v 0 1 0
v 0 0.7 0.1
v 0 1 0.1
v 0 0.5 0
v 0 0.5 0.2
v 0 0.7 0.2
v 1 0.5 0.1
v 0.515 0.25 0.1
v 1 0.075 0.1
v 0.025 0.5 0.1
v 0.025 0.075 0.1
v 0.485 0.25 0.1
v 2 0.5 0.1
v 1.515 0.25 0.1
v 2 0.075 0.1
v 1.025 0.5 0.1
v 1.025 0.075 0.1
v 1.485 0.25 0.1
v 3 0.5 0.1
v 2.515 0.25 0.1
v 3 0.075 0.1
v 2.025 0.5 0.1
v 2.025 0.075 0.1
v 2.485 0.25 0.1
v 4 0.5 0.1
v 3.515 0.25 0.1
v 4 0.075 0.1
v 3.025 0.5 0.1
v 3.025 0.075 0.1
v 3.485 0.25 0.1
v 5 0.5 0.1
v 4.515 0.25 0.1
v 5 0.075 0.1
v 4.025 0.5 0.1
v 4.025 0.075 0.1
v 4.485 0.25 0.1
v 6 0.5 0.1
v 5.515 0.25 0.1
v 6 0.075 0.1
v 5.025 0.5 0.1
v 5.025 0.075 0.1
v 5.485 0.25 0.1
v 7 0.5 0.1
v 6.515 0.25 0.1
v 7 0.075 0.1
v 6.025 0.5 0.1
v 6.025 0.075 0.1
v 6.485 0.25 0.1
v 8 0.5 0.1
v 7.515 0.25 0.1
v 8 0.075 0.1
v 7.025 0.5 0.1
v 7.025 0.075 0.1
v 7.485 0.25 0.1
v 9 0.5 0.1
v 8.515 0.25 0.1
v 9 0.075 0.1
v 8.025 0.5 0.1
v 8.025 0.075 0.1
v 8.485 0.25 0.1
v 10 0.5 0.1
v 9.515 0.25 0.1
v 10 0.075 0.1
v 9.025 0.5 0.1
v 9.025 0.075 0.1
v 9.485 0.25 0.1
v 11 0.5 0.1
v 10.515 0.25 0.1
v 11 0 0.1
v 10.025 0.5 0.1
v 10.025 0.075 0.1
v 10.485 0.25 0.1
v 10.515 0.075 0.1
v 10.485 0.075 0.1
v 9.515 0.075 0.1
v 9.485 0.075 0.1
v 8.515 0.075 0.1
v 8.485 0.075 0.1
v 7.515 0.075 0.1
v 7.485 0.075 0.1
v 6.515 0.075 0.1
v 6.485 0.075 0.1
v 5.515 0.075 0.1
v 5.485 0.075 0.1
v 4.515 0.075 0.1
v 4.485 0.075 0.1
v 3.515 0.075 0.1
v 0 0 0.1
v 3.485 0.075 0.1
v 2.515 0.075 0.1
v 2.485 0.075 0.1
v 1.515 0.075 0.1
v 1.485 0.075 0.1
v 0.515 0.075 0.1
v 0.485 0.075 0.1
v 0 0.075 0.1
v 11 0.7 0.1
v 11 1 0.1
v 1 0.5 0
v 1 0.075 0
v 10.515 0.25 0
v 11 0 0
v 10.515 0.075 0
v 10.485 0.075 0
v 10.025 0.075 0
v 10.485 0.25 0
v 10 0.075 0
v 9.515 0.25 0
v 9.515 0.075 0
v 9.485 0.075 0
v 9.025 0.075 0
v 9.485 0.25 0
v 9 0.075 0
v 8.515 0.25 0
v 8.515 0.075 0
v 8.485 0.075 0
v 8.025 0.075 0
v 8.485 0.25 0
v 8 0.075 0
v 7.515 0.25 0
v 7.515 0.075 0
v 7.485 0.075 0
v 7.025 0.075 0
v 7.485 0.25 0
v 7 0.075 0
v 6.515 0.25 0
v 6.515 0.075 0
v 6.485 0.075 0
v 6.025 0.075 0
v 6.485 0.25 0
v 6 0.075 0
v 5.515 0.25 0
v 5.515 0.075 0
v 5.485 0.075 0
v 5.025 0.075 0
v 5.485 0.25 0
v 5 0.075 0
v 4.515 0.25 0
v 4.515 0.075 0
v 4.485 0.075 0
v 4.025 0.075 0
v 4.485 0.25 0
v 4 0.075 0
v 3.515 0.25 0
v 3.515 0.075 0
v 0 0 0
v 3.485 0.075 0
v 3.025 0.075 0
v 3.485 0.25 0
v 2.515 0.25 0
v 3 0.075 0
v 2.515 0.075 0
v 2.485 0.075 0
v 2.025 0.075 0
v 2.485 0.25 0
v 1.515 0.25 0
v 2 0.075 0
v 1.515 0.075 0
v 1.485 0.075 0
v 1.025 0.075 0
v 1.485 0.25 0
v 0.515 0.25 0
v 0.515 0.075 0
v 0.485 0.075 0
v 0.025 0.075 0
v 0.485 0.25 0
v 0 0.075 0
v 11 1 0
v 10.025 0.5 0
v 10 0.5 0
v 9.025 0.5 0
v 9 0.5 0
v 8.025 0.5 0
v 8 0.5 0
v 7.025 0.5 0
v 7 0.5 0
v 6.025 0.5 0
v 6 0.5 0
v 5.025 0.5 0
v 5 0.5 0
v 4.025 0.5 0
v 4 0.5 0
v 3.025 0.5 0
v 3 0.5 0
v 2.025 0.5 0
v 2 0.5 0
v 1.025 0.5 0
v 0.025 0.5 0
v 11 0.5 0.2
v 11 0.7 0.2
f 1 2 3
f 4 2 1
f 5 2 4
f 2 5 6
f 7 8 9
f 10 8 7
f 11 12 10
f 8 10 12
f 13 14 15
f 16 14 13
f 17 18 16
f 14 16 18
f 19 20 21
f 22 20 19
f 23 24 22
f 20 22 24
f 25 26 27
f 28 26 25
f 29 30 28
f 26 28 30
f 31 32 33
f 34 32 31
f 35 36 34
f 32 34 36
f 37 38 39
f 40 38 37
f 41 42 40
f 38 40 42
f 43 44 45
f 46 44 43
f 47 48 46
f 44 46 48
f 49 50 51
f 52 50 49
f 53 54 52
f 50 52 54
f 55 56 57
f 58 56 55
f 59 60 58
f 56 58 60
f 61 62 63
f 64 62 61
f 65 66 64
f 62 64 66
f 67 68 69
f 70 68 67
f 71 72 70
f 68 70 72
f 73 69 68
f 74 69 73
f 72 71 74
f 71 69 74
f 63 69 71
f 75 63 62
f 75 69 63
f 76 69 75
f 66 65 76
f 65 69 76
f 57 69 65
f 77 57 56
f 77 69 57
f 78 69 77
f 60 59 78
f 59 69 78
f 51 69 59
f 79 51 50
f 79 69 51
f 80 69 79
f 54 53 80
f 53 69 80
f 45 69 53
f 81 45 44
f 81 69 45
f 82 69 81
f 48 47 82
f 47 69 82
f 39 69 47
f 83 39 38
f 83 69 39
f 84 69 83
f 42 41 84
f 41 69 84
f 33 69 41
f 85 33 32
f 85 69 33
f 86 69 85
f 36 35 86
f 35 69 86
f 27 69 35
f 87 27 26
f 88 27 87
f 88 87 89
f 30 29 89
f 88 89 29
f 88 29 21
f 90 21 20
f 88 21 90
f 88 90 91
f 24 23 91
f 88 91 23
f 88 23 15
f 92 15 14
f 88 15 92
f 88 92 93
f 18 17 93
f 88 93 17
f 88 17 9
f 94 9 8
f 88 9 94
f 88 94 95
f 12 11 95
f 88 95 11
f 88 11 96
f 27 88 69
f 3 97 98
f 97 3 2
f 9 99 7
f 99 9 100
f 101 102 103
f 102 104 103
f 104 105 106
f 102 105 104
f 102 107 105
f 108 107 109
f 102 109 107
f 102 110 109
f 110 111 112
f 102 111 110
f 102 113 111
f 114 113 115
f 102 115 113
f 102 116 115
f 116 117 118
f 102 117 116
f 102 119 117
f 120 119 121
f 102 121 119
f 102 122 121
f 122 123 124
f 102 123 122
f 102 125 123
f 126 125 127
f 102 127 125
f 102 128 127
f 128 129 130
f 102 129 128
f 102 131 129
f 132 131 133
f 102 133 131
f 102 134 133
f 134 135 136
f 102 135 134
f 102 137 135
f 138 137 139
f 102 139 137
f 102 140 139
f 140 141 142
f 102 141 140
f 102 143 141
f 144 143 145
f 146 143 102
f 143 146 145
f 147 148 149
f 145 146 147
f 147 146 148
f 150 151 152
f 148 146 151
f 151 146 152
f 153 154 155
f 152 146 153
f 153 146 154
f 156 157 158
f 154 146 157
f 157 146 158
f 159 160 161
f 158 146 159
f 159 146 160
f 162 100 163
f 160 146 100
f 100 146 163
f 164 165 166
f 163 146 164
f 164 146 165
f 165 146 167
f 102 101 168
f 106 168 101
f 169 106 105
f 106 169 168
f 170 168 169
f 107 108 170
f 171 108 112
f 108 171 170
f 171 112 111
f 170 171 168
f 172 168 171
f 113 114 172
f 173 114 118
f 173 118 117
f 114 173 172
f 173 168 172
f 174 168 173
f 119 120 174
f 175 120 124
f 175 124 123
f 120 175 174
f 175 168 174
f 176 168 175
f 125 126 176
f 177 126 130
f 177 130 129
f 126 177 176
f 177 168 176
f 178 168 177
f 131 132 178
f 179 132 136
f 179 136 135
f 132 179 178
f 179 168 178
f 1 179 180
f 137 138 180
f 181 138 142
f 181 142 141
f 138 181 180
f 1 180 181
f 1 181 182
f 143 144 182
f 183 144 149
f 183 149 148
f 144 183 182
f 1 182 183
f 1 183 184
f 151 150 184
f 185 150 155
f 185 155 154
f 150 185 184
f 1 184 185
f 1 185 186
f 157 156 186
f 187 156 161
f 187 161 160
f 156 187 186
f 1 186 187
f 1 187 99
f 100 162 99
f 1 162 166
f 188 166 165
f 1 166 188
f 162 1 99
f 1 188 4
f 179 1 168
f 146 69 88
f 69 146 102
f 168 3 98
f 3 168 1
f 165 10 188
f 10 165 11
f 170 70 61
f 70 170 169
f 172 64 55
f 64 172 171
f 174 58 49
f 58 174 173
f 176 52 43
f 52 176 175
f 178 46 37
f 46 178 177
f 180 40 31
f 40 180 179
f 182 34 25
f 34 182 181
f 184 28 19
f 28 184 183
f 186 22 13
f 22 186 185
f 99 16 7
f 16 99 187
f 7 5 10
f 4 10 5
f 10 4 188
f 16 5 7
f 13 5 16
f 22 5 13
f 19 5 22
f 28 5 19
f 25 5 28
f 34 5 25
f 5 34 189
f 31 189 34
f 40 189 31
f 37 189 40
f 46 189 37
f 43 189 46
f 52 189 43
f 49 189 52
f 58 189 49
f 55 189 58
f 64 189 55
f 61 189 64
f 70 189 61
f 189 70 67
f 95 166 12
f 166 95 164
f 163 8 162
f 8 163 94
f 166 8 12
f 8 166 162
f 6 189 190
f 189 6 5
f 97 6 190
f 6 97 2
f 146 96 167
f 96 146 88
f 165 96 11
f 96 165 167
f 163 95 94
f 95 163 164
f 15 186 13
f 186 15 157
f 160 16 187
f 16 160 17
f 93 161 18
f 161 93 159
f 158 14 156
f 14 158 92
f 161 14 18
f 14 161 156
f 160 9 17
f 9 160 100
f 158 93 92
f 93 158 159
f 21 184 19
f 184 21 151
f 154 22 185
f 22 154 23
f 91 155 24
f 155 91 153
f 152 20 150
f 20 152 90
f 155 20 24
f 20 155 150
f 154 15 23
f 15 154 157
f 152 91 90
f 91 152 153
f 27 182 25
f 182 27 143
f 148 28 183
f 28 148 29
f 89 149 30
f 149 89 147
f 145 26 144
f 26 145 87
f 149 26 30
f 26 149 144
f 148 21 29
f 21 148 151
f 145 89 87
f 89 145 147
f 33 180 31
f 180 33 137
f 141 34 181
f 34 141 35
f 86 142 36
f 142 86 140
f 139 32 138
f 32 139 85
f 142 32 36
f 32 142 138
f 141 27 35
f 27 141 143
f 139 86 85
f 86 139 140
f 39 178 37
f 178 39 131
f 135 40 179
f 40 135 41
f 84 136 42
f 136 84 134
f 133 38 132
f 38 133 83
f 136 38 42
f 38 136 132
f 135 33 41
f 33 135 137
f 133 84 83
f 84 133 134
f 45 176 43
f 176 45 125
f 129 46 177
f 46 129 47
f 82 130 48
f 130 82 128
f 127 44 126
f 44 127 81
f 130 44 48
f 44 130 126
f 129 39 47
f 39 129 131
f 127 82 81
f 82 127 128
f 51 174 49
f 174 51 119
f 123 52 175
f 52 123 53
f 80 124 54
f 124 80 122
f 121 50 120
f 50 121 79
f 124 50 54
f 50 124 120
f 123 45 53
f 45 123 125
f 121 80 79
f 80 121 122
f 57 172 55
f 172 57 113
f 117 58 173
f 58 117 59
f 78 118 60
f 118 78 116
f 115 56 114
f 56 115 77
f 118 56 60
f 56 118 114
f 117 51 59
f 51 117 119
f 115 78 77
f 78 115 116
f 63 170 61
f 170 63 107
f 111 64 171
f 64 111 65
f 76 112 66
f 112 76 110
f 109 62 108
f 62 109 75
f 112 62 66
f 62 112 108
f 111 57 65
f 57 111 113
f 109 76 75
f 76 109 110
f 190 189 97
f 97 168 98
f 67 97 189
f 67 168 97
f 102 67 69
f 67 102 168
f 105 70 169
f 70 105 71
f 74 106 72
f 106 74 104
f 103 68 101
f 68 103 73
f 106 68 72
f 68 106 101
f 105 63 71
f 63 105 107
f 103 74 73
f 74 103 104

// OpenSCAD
//righello da 10 cm
l=10;
for(i = [0:l])
{
    union()
    {
    difference()
    {
    difference()
    {
        translate([i,0,0]) cube([1, 1, 0.1]);
        translate([i, 0, 0]) cube([0.05, 1, 2], center=true);
    }
    translate([i+0.5, 0, 0]) cube([0.03, 0.5, 2], center=true);
    }
    translate([i, 0.5,0])cube([1,0.2,0.2]);
    translate([i, 0,0])cube([1,0.075,0.1]);
    }
}
